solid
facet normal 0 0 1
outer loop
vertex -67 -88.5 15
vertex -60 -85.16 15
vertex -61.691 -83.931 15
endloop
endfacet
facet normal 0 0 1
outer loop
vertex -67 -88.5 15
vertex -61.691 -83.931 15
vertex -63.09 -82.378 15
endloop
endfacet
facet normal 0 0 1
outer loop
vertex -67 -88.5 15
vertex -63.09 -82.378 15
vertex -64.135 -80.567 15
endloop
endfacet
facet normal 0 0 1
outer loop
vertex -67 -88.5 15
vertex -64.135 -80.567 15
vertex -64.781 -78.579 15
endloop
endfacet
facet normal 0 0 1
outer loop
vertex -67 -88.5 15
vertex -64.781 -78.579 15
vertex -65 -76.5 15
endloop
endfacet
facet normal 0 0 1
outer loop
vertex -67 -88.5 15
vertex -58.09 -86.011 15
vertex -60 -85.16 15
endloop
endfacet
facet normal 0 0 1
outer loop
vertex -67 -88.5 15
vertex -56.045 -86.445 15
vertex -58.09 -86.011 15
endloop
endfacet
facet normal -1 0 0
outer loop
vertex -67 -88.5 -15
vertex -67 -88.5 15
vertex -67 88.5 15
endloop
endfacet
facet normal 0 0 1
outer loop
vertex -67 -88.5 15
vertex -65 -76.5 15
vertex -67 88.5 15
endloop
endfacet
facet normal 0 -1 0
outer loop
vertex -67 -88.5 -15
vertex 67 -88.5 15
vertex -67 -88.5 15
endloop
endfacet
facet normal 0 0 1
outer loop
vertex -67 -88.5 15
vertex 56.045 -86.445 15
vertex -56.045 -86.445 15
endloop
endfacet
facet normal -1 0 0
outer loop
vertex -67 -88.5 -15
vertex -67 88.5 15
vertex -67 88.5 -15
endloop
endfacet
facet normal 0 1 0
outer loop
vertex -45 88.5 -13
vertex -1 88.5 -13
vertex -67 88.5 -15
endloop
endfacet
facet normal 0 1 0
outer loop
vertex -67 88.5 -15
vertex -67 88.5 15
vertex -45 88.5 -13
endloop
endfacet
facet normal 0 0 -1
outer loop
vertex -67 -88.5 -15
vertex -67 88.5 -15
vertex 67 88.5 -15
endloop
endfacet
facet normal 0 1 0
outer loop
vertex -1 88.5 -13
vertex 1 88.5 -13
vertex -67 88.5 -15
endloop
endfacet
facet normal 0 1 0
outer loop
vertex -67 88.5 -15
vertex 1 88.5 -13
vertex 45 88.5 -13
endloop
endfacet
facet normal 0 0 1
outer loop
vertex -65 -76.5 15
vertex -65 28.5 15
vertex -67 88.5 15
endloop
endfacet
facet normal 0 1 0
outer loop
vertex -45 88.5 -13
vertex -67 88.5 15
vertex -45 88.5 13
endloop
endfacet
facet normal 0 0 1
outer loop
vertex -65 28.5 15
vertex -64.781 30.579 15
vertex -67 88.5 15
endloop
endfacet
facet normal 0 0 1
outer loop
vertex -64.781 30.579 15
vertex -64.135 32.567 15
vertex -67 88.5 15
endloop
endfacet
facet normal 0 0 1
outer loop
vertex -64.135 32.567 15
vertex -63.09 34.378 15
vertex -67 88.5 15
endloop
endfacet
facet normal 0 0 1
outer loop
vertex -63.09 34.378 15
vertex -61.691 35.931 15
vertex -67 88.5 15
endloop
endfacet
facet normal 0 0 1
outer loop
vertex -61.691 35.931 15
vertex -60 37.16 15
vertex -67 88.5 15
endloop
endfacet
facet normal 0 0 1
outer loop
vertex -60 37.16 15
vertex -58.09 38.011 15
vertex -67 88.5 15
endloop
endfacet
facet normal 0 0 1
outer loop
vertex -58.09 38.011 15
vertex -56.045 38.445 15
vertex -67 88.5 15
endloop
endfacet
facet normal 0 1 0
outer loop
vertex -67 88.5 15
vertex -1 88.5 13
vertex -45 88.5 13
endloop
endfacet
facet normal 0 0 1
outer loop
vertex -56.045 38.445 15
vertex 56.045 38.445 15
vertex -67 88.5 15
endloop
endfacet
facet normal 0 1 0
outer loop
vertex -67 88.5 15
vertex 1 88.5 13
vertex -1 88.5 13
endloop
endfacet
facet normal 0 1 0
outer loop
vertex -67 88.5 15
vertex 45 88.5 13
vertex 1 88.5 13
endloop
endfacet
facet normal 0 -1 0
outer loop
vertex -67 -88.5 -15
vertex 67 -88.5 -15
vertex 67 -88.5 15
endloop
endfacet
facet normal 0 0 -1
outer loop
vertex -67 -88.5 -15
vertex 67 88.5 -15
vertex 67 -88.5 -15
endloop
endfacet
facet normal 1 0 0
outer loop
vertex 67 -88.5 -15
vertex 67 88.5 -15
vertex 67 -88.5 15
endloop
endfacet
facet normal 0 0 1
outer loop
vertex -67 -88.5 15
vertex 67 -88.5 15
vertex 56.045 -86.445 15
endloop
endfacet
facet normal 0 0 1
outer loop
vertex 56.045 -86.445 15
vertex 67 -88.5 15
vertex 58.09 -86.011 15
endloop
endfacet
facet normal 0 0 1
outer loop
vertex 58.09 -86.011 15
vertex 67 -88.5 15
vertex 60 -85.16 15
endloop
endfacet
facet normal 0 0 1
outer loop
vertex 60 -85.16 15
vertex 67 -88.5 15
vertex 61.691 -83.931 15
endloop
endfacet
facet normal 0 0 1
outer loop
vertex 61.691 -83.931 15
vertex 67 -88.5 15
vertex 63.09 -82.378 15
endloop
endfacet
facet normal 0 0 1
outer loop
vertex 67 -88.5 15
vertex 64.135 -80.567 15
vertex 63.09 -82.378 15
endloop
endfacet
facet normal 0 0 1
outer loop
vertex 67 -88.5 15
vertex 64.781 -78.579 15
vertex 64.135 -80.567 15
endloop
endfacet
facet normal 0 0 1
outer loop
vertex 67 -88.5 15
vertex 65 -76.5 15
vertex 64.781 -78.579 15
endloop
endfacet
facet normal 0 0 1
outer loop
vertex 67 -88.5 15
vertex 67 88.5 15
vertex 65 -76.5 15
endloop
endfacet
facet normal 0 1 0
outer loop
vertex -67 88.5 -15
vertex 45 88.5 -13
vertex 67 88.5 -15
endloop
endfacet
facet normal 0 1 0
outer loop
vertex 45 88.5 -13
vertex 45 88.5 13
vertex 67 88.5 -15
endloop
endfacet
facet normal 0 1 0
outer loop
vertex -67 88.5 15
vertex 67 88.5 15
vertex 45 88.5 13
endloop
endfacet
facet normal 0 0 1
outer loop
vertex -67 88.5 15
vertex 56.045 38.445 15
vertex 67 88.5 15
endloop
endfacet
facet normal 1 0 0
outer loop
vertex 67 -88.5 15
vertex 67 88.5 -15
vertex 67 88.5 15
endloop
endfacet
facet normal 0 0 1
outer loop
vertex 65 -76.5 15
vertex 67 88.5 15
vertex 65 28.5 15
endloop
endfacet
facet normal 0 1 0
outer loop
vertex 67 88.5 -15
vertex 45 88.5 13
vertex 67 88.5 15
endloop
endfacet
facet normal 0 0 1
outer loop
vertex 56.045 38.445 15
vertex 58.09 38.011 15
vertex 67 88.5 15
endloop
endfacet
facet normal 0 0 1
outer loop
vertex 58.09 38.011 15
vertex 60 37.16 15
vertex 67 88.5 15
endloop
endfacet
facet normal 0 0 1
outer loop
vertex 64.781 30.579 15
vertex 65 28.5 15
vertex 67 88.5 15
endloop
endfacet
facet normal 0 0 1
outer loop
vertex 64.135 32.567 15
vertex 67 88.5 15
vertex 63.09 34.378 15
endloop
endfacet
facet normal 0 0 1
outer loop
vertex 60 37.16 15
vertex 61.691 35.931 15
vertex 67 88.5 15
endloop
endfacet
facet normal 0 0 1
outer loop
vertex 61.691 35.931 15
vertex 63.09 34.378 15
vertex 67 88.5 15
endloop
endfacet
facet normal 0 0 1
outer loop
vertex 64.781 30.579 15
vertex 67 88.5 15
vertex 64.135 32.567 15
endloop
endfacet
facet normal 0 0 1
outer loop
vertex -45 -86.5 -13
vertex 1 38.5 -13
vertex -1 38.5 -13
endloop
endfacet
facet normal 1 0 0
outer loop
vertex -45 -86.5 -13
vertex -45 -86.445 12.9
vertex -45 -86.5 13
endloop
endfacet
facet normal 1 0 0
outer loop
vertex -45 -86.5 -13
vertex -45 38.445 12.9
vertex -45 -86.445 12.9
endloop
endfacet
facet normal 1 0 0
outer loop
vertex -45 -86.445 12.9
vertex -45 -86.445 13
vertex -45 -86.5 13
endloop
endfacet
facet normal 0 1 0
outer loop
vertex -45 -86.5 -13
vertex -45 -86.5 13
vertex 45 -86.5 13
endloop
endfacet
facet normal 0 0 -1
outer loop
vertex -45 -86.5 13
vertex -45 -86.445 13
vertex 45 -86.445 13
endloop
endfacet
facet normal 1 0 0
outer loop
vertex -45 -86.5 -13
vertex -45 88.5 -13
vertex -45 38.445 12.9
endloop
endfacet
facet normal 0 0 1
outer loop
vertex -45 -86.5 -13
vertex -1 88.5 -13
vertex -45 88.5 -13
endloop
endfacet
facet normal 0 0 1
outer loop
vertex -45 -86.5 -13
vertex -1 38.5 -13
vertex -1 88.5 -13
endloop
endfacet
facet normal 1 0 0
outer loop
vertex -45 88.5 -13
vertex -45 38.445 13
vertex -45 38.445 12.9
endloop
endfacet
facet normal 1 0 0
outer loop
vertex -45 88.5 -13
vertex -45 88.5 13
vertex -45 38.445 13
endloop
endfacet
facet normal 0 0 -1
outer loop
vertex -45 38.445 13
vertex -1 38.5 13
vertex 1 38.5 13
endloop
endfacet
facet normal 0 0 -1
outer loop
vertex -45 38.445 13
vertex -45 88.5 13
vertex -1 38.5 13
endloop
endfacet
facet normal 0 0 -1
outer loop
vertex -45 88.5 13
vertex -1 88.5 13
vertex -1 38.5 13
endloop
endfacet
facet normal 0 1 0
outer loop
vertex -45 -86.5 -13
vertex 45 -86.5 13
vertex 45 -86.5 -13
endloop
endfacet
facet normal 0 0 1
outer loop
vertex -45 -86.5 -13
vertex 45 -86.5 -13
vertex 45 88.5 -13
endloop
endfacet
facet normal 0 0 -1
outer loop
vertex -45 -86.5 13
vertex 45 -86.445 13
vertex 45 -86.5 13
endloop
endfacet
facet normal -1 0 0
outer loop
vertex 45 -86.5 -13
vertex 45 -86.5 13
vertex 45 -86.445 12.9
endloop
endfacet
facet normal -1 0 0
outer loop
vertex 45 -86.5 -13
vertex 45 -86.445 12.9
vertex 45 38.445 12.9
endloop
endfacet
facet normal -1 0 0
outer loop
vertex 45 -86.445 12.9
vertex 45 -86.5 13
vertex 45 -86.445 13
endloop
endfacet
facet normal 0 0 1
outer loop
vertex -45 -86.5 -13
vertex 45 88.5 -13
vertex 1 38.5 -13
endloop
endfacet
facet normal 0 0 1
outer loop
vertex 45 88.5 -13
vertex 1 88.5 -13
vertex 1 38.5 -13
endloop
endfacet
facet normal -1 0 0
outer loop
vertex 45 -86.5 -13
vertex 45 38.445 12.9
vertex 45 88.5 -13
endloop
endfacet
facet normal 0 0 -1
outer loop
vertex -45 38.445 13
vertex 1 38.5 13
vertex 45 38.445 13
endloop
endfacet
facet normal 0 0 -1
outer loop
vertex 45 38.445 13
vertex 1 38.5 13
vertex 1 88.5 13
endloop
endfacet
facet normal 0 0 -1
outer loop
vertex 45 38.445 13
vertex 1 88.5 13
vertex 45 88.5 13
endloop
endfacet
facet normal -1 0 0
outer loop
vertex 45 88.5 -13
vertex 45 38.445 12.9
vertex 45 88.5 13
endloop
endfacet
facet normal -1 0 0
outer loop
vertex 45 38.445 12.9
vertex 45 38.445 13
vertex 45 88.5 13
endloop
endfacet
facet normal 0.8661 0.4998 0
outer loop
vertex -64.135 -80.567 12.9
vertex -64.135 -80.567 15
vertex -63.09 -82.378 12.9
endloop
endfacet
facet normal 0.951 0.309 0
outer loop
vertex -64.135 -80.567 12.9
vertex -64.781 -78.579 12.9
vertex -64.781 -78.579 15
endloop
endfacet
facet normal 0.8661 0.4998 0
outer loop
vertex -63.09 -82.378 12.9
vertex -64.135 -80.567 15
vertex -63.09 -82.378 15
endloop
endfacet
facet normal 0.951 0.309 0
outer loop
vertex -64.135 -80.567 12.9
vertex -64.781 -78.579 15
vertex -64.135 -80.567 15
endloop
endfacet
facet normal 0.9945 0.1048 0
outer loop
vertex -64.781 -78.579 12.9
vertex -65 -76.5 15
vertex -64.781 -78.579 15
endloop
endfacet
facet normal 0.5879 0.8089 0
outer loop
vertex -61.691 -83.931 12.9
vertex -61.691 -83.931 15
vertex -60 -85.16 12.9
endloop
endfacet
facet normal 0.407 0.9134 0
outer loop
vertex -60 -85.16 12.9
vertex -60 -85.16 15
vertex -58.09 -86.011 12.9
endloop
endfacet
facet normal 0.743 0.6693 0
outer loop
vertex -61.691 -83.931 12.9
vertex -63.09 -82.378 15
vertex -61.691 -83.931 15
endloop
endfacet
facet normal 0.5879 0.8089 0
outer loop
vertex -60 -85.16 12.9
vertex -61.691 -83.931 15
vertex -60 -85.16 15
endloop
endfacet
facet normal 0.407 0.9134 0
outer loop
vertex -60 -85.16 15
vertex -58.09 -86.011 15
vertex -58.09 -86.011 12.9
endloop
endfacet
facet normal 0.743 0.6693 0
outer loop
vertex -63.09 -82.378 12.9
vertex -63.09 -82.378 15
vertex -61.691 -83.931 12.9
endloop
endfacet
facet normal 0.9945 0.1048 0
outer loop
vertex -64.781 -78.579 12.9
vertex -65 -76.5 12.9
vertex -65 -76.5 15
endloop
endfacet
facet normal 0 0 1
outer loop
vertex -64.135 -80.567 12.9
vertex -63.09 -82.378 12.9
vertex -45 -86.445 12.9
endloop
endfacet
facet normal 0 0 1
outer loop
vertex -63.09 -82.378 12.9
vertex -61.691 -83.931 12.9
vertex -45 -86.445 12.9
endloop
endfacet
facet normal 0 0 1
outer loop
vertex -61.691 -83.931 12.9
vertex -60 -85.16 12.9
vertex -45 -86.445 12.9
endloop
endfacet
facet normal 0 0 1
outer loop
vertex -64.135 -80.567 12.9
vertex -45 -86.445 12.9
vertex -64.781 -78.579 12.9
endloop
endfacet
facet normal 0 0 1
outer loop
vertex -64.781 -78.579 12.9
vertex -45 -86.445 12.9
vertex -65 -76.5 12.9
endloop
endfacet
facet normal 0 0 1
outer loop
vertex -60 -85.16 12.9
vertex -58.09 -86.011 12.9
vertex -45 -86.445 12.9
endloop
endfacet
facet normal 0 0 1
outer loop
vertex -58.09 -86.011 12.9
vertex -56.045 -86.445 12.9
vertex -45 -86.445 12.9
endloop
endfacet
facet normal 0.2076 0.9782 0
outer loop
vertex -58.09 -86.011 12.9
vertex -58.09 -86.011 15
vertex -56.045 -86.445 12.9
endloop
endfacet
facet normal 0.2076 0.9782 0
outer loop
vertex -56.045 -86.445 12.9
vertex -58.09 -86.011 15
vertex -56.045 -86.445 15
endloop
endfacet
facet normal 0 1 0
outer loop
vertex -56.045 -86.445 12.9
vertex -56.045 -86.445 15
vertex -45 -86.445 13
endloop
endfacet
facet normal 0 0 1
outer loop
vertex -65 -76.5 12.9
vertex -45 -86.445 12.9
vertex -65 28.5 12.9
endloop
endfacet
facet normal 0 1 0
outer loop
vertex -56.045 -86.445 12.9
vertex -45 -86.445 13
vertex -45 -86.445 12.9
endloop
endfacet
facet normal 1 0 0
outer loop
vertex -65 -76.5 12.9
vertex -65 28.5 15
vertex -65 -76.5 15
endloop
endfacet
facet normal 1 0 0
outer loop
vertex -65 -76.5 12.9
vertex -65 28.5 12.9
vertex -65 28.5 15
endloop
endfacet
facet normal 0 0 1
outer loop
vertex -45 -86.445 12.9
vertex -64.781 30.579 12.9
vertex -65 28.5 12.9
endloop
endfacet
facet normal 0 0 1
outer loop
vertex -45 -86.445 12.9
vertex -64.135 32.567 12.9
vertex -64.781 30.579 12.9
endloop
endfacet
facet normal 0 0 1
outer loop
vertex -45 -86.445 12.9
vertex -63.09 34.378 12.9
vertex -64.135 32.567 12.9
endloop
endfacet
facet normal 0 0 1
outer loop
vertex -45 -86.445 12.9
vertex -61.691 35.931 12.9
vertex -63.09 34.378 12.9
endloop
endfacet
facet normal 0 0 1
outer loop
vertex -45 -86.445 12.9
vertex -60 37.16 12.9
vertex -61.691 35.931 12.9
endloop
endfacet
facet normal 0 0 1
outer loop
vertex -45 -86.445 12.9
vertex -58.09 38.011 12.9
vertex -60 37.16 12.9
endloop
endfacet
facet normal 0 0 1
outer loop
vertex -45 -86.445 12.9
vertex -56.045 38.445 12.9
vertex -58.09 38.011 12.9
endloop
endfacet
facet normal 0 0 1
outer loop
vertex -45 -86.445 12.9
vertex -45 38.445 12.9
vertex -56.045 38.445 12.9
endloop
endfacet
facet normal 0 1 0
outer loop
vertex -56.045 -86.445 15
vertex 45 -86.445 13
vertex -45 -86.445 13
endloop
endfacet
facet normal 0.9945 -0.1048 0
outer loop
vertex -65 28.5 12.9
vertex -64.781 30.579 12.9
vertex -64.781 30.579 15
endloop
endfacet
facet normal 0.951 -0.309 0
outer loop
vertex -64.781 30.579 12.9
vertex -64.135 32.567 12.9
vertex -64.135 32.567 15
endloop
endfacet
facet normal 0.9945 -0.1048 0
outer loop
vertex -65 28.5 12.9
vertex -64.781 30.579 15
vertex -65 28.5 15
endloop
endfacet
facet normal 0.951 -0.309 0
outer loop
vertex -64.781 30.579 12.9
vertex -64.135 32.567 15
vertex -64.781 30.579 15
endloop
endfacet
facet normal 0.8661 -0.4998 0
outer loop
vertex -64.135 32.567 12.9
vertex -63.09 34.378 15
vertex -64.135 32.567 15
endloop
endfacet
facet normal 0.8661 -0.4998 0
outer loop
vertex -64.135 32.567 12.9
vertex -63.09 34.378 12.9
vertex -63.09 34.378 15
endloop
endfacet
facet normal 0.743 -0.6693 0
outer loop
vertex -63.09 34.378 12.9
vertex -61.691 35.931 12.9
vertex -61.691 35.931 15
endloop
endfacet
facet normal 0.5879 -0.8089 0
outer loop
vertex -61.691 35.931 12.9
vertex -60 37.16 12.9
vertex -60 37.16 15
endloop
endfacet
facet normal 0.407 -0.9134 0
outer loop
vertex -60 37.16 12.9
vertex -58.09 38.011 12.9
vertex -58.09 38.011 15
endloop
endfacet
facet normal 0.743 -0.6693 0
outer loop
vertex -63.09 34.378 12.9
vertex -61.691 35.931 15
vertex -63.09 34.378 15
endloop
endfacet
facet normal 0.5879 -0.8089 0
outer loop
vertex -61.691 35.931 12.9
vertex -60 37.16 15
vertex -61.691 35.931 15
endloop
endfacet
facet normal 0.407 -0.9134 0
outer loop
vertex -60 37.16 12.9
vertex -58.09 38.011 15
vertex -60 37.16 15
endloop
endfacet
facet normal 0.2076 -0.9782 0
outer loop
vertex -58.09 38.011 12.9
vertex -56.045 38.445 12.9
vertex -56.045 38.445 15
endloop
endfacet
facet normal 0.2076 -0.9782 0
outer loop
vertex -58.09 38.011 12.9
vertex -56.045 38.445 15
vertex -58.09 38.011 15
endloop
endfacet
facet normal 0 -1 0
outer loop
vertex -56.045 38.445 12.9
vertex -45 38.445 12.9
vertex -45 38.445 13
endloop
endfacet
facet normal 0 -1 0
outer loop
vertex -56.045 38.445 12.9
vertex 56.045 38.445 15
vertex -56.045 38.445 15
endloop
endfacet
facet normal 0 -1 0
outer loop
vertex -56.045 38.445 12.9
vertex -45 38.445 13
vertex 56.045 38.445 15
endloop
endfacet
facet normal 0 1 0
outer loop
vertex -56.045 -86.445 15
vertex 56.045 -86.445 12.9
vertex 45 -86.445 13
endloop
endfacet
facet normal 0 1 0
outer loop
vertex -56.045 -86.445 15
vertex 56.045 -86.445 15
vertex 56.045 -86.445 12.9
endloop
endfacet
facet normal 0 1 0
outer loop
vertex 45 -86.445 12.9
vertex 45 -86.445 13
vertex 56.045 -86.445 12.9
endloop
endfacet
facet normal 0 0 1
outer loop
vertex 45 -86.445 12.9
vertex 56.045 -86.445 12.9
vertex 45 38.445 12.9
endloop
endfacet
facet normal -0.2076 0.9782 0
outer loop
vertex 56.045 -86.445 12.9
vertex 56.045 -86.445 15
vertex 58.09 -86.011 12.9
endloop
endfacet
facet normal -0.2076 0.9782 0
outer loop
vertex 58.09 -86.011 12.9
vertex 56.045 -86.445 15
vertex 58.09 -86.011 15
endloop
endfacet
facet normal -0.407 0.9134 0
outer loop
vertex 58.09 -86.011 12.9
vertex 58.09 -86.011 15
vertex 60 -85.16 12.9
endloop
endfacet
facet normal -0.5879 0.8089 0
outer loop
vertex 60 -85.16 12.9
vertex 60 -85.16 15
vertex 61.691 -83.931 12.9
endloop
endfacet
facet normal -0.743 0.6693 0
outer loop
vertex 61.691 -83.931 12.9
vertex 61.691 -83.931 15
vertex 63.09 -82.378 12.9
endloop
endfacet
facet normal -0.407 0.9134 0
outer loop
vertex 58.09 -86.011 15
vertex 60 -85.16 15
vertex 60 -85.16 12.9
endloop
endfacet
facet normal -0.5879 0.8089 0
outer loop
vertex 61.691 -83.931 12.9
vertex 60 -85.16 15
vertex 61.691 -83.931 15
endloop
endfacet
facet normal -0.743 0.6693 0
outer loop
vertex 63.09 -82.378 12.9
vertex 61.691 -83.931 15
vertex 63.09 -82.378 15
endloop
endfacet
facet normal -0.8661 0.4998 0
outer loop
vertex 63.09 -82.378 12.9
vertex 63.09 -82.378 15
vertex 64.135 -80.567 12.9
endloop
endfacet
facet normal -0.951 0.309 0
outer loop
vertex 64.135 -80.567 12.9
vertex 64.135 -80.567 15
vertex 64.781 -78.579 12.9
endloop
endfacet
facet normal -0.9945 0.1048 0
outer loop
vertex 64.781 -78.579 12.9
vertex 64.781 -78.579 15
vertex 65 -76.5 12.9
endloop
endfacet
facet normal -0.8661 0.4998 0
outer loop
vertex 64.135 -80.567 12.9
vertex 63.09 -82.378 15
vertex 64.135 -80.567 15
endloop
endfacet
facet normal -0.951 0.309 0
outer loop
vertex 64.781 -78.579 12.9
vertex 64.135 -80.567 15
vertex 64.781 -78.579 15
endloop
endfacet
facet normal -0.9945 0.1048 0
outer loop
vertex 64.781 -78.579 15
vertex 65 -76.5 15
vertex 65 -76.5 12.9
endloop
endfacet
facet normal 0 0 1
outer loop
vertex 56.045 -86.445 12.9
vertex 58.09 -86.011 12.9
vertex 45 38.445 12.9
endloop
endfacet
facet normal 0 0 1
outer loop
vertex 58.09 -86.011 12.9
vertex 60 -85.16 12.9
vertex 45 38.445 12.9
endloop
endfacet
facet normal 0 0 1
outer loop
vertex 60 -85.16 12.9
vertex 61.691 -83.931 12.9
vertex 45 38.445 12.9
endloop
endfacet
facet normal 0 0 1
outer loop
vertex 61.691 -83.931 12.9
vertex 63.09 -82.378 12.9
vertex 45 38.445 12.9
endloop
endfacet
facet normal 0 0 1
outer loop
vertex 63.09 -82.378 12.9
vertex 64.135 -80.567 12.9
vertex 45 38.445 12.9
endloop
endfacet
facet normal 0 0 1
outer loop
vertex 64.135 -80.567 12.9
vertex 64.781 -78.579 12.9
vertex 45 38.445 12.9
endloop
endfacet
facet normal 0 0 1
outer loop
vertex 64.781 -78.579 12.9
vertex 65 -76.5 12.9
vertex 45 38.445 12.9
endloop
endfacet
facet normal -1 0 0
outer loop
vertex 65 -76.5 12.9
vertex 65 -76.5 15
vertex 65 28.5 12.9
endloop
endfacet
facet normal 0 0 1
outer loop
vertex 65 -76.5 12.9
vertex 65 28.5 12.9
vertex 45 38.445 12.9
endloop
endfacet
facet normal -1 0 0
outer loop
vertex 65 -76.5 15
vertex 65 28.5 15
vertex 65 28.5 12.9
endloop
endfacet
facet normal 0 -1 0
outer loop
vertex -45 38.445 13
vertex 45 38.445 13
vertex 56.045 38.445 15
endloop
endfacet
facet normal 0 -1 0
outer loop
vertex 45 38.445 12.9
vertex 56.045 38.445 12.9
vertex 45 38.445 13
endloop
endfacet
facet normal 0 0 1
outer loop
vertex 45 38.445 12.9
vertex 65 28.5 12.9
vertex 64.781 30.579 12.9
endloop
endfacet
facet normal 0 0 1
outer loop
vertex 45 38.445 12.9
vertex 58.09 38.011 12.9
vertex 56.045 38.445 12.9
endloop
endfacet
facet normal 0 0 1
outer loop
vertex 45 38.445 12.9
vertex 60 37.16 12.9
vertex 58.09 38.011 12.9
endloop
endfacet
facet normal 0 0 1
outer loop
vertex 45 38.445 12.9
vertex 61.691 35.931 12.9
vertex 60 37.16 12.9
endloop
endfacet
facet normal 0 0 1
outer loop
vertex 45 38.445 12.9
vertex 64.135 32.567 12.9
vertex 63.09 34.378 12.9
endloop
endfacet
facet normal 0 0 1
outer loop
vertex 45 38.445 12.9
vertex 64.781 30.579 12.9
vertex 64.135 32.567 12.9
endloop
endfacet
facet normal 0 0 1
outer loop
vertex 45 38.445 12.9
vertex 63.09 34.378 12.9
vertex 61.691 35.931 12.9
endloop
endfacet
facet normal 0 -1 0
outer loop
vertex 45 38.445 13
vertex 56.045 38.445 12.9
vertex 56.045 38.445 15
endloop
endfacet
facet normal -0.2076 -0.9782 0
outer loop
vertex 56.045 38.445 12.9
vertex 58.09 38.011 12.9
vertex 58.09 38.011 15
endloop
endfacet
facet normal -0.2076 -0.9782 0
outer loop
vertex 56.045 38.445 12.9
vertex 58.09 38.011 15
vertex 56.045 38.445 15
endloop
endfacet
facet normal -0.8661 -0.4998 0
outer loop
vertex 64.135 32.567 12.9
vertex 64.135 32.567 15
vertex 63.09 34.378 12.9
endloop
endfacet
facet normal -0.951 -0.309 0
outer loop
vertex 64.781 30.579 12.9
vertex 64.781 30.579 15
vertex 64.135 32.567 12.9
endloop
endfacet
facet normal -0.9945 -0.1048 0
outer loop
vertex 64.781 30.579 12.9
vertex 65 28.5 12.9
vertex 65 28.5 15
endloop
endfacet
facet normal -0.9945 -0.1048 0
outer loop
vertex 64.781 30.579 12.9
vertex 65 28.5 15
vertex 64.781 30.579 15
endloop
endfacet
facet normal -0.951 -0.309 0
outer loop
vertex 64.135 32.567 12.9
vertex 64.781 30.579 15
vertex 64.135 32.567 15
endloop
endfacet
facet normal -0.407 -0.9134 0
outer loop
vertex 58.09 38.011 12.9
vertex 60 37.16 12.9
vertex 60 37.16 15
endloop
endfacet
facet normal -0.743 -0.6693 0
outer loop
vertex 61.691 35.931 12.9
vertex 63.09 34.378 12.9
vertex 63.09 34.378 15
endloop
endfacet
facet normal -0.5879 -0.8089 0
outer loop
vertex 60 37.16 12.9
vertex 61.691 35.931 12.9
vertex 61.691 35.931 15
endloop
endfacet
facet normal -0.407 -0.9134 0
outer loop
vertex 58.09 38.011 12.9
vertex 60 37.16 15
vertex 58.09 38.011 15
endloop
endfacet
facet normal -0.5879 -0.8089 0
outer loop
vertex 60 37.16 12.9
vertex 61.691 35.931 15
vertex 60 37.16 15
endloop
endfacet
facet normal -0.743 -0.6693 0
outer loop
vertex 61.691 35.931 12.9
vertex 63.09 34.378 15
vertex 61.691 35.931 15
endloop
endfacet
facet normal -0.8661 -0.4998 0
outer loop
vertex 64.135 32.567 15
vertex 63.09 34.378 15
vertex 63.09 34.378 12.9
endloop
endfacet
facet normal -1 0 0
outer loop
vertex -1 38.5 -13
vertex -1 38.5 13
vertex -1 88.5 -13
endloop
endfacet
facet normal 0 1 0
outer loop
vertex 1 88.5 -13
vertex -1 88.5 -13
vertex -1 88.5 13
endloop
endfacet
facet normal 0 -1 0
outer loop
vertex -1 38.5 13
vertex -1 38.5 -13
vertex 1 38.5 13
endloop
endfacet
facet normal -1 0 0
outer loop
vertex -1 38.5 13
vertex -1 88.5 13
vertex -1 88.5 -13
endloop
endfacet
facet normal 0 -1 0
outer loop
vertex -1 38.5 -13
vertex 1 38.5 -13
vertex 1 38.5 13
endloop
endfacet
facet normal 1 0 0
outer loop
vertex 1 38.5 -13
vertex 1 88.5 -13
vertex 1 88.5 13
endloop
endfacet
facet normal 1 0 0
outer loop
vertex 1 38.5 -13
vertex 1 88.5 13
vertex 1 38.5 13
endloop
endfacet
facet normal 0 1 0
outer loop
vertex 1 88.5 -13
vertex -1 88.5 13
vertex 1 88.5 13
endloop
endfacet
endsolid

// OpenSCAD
width = 130;
depth_pc = 125;
depth_air_duct = 50;
height = 30;
wall = 2;
column = 20;
round_r = 10;

total_width = width + wall*2;
total_depth = depth_pc + depth_air_duct + wall;

difference() {
cube([total_width, total_depth, height], center=true);

translate([0, wall/2+0.1, 0])
cube([total_width-column*2-wall*2, total_depth-wall+0.2, height-wall*2], center=true);

translate([0, -depth_air_duct/2+wall/2, height/2-wall-0.1])
linear_extrude(height=wall+0.2)
minkowski() {
square([width-round_r*2, depth_pc-round_r*2], center=true);
circle(r=round_r);
}
}

translate([0, depth_pc/2+wall/2, 0])
cube([wall, depth_air_duct, height], center=true);
